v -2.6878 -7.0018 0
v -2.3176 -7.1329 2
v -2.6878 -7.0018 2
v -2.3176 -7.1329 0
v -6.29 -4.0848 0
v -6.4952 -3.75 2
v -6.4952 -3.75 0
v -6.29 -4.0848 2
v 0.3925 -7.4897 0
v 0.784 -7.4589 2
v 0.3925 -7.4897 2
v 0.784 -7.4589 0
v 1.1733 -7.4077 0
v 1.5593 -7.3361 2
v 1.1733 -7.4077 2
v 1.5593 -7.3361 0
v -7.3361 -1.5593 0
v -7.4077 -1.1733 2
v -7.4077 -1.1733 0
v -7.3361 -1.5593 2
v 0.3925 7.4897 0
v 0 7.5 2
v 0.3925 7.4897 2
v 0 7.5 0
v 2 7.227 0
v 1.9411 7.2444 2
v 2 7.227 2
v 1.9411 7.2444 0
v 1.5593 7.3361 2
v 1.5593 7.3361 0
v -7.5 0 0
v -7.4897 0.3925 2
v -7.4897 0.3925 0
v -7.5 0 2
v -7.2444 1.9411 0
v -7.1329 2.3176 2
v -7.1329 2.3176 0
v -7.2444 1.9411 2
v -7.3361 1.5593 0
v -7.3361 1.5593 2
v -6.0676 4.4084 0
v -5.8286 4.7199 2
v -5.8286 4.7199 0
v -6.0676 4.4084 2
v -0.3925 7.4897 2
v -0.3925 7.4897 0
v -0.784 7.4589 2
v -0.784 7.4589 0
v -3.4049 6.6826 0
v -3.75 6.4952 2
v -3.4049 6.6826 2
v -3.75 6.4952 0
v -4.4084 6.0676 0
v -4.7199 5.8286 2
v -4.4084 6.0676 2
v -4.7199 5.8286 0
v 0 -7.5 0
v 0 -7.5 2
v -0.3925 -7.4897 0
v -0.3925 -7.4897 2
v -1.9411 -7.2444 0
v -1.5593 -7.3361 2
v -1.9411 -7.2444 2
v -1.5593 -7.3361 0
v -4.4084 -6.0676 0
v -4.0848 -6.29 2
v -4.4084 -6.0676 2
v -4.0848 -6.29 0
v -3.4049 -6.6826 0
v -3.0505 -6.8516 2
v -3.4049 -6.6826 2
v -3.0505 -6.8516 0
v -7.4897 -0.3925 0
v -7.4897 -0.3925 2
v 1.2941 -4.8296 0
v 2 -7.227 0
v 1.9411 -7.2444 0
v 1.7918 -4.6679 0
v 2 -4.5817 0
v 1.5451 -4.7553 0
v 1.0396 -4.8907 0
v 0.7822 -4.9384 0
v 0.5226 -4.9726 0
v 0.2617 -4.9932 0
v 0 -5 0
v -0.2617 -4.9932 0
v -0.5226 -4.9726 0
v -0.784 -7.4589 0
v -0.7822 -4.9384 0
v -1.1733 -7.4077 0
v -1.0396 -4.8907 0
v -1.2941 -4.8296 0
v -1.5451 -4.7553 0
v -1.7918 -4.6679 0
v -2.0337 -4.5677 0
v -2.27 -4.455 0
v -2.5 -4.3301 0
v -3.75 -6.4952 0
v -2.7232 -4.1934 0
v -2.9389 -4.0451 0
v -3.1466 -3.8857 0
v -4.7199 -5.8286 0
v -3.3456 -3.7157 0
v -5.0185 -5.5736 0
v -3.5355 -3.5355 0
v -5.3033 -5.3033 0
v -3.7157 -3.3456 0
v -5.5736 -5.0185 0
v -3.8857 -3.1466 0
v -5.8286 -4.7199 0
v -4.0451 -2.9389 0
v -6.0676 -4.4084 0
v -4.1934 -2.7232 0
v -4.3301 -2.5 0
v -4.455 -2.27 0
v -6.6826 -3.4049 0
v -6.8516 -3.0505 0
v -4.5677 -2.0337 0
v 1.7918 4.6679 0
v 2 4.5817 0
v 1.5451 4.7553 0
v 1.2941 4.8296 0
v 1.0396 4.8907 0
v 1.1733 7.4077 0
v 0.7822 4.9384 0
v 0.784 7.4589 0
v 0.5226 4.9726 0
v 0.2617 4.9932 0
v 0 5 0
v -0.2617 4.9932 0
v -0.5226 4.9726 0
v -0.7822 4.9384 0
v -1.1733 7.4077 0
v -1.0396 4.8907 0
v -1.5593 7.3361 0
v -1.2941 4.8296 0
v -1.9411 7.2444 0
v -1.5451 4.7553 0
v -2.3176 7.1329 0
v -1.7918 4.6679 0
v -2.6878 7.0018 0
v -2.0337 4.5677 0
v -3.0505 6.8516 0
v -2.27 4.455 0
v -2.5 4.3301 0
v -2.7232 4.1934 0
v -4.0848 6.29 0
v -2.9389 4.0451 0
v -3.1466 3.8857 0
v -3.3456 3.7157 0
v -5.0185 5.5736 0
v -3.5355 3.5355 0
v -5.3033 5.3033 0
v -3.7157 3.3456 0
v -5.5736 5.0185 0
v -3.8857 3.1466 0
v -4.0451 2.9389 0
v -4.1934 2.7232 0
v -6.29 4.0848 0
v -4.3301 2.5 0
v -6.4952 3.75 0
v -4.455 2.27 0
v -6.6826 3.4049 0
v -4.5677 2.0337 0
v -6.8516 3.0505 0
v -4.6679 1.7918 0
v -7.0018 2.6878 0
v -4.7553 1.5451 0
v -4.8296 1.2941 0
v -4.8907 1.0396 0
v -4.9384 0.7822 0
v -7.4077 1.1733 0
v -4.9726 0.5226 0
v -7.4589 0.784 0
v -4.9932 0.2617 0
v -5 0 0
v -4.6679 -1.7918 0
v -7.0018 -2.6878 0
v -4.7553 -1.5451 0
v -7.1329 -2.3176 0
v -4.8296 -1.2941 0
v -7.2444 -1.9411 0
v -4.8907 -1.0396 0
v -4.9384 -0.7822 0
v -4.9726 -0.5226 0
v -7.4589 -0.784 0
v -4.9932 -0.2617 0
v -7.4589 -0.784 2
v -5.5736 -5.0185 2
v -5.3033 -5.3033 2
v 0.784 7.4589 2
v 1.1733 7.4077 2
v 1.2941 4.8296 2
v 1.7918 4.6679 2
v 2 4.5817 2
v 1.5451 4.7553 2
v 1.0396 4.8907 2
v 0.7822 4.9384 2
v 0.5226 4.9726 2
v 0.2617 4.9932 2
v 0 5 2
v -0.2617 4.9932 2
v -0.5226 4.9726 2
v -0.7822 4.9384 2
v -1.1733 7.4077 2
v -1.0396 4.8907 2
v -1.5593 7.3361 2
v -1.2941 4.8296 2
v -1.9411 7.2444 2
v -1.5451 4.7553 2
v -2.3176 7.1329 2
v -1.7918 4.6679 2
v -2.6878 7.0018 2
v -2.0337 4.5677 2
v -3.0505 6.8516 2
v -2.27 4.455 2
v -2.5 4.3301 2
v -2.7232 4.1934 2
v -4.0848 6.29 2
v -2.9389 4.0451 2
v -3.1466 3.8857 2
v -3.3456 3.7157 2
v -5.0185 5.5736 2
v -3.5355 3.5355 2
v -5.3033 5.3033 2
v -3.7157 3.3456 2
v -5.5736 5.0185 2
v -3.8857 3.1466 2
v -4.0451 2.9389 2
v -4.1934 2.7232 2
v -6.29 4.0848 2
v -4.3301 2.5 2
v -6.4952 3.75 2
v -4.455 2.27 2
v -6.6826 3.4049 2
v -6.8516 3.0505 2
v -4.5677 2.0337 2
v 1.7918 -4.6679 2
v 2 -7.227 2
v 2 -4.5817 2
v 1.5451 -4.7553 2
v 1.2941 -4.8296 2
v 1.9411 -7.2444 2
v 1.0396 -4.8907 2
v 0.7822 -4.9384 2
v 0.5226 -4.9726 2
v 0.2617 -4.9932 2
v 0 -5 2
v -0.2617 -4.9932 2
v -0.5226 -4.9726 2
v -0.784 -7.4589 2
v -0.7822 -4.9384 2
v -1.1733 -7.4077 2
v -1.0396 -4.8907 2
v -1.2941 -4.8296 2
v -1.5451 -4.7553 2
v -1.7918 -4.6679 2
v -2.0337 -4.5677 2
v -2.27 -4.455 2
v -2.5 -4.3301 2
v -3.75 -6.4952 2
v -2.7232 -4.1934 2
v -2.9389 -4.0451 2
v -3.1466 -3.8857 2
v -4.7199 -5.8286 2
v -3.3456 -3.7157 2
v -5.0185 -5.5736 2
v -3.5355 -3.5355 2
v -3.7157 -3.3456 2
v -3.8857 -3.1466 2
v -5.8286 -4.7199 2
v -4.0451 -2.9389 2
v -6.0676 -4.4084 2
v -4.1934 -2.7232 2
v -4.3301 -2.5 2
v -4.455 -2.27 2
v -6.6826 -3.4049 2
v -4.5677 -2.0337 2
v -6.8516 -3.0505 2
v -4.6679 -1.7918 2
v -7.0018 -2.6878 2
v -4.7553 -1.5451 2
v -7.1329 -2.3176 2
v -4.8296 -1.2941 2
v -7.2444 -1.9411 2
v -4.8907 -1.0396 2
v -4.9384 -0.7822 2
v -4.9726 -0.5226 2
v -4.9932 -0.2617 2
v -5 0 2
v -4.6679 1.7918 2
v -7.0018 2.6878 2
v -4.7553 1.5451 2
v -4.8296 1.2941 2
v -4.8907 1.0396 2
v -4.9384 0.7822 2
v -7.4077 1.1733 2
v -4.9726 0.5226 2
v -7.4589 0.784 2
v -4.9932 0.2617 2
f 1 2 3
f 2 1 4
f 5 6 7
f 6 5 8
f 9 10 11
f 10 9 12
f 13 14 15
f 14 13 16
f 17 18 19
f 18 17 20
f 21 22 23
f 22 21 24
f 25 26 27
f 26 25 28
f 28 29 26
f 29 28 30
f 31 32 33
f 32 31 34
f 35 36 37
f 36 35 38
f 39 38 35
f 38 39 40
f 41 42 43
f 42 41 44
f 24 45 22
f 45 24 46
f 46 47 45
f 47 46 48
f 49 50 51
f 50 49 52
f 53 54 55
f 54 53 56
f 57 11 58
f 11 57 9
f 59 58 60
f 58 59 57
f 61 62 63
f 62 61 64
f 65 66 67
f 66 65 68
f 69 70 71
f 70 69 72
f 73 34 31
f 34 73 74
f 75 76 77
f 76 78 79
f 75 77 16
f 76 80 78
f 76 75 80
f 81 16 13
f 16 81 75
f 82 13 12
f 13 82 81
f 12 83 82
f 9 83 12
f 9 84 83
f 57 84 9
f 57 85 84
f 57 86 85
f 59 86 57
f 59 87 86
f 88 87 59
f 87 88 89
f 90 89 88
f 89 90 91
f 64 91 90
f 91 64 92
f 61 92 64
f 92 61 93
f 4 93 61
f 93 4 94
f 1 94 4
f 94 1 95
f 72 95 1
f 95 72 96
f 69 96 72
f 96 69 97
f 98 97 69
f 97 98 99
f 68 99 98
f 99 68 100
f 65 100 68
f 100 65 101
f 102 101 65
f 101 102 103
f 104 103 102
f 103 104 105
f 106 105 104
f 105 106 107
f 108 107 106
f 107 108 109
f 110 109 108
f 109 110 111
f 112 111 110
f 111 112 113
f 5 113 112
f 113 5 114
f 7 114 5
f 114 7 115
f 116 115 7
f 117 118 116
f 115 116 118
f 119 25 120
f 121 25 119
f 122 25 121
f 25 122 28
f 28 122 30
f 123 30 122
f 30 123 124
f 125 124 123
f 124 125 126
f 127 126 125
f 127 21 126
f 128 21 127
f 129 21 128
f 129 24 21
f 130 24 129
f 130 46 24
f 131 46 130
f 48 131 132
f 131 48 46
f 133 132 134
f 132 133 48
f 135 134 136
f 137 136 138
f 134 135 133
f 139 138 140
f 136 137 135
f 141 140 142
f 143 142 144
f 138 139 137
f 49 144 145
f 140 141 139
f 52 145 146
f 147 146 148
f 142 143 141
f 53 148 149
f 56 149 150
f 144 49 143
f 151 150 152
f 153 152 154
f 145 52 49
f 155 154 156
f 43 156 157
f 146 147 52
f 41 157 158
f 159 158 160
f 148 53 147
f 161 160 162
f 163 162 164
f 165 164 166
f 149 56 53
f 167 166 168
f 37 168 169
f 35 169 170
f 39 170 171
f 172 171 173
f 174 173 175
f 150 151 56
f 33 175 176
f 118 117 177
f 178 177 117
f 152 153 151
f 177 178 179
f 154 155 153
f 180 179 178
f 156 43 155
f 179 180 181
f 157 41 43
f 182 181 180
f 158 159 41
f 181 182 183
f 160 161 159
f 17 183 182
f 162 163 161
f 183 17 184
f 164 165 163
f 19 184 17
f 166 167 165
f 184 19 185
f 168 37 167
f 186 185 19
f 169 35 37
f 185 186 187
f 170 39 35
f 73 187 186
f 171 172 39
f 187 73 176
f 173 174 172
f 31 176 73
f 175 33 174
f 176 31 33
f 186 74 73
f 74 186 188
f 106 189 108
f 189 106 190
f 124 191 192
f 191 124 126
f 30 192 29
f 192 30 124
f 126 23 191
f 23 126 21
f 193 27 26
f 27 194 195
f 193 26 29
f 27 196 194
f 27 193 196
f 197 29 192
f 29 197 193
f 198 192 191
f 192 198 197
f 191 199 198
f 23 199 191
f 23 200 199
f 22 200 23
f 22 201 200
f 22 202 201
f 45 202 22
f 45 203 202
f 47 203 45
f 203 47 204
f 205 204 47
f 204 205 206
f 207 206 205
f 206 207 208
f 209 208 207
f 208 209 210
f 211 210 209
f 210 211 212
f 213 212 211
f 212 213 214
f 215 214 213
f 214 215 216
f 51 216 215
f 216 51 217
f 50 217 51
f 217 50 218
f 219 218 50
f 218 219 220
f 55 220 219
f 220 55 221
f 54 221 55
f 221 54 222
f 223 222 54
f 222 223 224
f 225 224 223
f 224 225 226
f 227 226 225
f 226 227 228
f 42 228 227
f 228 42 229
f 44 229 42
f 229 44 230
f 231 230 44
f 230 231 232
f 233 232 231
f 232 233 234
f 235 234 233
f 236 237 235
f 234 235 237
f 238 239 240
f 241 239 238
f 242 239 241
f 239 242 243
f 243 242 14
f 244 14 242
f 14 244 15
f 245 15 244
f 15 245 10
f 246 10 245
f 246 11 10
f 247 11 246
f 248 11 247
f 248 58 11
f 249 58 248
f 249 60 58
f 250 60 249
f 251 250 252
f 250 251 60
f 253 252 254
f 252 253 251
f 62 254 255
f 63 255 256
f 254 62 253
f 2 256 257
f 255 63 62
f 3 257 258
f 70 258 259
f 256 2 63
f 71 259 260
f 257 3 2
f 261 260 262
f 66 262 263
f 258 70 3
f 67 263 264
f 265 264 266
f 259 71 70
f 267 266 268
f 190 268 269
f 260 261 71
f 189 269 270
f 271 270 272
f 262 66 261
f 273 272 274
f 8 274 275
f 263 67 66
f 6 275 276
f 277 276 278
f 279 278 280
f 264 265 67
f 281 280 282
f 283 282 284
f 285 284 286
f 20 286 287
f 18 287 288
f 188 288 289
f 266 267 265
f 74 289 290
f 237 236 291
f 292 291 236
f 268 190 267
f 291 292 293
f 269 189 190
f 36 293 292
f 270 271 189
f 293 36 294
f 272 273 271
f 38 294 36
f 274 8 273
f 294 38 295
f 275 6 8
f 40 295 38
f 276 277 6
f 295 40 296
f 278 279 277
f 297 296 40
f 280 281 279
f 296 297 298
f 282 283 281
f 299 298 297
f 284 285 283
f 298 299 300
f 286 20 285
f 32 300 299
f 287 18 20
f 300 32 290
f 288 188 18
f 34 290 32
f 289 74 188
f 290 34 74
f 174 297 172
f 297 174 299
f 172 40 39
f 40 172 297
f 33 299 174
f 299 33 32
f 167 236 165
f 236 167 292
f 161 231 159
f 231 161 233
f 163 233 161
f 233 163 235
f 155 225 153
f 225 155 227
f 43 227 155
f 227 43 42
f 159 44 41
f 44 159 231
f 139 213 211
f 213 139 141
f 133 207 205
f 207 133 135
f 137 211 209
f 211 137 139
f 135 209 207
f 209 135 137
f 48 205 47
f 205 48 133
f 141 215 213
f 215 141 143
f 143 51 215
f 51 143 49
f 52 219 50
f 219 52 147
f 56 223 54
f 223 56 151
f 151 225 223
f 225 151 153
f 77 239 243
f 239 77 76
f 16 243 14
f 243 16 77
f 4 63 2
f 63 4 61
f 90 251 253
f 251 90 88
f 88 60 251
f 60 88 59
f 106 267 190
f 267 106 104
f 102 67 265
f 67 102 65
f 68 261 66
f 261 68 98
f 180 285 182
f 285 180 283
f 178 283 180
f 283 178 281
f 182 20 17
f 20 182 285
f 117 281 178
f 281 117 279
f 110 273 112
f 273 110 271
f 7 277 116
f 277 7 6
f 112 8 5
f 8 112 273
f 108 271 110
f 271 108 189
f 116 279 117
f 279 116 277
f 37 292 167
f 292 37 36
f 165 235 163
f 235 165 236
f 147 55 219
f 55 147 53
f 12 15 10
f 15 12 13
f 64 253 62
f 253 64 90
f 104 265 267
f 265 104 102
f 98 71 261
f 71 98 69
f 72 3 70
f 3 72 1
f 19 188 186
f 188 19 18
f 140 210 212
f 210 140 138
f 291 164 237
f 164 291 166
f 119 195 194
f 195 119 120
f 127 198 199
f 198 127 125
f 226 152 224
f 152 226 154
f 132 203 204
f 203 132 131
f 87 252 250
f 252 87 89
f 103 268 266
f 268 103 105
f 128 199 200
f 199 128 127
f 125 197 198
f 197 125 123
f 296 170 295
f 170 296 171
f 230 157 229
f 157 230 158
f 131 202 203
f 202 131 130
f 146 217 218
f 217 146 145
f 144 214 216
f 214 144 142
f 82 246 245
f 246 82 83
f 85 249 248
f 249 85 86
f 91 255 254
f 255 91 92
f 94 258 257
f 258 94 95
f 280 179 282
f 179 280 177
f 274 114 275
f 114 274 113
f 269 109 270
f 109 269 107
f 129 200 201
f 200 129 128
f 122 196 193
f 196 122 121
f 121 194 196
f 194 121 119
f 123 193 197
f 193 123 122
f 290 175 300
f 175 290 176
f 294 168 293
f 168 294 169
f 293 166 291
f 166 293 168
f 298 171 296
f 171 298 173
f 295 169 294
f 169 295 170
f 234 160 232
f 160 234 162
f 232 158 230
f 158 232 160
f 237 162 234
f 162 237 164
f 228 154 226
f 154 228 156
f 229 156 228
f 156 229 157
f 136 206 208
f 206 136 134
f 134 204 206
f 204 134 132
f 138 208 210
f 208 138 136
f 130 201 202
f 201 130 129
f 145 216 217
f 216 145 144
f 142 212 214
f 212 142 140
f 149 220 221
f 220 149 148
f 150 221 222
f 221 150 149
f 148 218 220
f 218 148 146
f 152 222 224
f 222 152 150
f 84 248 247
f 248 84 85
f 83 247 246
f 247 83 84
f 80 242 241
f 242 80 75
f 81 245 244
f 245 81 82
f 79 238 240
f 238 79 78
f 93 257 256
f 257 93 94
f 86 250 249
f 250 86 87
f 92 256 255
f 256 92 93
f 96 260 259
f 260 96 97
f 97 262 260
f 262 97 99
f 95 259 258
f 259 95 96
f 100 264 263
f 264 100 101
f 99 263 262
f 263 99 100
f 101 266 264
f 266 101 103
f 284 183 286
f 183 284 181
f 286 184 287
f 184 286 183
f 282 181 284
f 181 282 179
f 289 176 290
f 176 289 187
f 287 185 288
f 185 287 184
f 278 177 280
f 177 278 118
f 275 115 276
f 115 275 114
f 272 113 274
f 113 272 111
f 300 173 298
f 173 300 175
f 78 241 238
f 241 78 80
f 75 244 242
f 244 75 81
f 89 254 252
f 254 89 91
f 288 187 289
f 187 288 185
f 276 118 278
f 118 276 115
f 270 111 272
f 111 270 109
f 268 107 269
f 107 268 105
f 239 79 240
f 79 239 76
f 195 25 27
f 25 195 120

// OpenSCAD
$fn=120;
difference(){
    cylinder(h=2, r=7.5);
    cylinder(h=2, r=5);
    translate([2,-10,0]) cube([10,20,2]);
}
